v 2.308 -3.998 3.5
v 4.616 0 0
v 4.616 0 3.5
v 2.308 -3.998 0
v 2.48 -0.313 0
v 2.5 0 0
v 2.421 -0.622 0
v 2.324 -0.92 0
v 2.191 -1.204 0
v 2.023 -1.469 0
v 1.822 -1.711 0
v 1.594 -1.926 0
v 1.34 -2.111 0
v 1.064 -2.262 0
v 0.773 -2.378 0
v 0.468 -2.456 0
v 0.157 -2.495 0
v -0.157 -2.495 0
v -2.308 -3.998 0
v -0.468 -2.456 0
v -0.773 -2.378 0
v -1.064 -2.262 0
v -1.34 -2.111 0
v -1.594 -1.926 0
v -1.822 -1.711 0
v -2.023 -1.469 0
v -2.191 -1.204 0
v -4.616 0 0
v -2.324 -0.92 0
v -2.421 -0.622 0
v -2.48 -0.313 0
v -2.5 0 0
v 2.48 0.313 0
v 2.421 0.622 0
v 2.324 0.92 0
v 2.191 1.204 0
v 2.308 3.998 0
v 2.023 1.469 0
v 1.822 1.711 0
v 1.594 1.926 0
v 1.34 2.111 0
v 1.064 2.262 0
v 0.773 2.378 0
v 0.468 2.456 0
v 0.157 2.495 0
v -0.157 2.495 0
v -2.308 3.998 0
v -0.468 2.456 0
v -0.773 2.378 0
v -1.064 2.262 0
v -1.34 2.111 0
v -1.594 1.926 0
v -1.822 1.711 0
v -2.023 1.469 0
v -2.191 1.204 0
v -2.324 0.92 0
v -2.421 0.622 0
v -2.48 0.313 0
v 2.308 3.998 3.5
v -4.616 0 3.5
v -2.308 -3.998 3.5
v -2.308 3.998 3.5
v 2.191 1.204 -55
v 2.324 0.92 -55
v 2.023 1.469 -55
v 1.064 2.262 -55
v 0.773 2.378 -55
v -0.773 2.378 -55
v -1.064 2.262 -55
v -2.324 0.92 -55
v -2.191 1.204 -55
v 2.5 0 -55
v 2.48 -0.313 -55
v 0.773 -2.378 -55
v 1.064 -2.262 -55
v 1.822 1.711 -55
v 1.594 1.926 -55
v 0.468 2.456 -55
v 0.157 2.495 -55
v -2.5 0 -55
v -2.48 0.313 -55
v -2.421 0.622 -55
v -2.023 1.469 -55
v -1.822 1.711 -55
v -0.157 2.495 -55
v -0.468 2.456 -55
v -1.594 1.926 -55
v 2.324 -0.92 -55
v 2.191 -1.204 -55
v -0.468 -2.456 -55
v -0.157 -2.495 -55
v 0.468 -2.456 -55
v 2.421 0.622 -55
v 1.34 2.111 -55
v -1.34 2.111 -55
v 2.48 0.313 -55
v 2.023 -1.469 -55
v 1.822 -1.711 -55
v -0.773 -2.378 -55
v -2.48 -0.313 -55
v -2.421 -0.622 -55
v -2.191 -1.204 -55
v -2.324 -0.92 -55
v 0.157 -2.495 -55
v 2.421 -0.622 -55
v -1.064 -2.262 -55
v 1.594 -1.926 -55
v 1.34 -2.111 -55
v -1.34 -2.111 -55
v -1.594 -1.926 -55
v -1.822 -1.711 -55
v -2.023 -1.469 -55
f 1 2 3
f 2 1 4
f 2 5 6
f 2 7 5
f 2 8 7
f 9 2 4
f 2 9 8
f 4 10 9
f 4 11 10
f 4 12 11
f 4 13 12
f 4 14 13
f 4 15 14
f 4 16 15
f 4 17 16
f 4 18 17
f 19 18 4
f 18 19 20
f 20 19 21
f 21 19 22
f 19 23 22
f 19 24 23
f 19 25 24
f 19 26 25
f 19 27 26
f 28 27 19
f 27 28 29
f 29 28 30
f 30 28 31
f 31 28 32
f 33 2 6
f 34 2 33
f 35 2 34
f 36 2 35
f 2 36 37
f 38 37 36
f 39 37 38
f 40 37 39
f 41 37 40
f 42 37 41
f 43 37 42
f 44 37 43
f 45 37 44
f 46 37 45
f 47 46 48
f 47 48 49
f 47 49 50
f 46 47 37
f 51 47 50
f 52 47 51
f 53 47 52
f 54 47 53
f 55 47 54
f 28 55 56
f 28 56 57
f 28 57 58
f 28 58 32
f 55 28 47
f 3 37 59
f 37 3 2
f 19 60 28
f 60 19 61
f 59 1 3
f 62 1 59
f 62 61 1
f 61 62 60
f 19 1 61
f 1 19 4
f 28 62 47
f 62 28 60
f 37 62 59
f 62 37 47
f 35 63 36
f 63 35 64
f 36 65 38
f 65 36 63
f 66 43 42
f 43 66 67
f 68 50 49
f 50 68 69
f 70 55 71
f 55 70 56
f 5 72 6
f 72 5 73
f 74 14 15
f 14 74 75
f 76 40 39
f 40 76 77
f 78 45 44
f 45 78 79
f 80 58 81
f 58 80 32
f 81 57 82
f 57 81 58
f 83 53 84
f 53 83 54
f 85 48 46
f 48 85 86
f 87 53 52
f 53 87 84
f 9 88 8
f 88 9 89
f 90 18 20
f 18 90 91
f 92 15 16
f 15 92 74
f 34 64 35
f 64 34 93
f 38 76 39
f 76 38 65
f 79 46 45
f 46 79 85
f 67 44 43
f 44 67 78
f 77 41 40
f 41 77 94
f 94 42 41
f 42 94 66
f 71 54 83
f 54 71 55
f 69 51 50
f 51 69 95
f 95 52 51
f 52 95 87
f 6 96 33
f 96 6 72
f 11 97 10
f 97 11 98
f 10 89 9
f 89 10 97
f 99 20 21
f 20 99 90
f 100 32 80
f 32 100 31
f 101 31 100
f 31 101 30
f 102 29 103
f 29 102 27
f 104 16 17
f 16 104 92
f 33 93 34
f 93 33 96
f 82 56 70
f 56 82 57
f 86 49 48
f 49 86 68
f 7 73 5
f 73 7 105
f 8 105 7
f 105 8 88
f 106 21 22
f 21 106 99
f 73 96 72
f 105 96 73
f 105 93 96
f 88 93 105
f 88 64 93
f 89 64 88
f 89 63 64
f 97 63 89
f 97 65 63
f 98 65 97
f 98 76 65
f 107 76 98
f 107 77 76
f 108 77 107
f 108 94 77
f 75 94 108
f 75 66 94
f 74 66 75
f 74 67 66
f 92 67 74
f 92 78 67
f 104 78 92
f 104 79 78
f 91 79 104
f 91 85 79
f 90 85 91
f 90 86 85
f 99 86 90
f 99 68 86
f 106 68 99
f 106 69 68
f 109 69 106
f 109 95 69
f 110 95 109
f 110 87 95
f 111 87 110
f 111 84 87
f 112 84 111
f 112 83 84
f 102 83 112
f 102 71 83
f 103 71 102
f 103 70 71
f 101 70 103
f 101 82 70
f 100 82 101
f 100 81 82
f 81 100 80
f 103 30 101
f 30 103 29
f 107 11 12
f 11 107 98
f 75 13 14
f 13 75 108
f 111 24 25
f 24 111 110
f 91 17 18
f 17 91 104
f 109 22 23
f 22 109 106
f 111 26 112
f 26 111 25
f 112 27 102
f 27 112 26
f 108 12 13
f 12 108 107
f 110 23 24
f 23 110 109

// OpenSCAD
$fn = 50;


difference() {
	union() {
		translate(v = [0, 0, 0]) {
			rotate(a = [0, 0, 0]) {
				translate(v = [0, 0, 0]) {
					rotate(a = [0, 0, 0]) {
						linear_extrude(height = 3.5000000000) {
							polygon(points = [[4.6160000000, 0.0000000000], [2.3080000000, 3.9975732639], [-2.3080000000, 3.9975732639], [-4.6160000000, 0.0000000000], [-2.3080000000, -3.9975732639], [2.3080000000, -3.9975732639]]);
						}
					}
				}
			}
		}
		translate(v = [0, 0, -55]) {
			rotate(a = [0, 0, 0]) {
				cylinder(h = 55, r = 2.5000000000);
			}
		}
	}
	union();
}
